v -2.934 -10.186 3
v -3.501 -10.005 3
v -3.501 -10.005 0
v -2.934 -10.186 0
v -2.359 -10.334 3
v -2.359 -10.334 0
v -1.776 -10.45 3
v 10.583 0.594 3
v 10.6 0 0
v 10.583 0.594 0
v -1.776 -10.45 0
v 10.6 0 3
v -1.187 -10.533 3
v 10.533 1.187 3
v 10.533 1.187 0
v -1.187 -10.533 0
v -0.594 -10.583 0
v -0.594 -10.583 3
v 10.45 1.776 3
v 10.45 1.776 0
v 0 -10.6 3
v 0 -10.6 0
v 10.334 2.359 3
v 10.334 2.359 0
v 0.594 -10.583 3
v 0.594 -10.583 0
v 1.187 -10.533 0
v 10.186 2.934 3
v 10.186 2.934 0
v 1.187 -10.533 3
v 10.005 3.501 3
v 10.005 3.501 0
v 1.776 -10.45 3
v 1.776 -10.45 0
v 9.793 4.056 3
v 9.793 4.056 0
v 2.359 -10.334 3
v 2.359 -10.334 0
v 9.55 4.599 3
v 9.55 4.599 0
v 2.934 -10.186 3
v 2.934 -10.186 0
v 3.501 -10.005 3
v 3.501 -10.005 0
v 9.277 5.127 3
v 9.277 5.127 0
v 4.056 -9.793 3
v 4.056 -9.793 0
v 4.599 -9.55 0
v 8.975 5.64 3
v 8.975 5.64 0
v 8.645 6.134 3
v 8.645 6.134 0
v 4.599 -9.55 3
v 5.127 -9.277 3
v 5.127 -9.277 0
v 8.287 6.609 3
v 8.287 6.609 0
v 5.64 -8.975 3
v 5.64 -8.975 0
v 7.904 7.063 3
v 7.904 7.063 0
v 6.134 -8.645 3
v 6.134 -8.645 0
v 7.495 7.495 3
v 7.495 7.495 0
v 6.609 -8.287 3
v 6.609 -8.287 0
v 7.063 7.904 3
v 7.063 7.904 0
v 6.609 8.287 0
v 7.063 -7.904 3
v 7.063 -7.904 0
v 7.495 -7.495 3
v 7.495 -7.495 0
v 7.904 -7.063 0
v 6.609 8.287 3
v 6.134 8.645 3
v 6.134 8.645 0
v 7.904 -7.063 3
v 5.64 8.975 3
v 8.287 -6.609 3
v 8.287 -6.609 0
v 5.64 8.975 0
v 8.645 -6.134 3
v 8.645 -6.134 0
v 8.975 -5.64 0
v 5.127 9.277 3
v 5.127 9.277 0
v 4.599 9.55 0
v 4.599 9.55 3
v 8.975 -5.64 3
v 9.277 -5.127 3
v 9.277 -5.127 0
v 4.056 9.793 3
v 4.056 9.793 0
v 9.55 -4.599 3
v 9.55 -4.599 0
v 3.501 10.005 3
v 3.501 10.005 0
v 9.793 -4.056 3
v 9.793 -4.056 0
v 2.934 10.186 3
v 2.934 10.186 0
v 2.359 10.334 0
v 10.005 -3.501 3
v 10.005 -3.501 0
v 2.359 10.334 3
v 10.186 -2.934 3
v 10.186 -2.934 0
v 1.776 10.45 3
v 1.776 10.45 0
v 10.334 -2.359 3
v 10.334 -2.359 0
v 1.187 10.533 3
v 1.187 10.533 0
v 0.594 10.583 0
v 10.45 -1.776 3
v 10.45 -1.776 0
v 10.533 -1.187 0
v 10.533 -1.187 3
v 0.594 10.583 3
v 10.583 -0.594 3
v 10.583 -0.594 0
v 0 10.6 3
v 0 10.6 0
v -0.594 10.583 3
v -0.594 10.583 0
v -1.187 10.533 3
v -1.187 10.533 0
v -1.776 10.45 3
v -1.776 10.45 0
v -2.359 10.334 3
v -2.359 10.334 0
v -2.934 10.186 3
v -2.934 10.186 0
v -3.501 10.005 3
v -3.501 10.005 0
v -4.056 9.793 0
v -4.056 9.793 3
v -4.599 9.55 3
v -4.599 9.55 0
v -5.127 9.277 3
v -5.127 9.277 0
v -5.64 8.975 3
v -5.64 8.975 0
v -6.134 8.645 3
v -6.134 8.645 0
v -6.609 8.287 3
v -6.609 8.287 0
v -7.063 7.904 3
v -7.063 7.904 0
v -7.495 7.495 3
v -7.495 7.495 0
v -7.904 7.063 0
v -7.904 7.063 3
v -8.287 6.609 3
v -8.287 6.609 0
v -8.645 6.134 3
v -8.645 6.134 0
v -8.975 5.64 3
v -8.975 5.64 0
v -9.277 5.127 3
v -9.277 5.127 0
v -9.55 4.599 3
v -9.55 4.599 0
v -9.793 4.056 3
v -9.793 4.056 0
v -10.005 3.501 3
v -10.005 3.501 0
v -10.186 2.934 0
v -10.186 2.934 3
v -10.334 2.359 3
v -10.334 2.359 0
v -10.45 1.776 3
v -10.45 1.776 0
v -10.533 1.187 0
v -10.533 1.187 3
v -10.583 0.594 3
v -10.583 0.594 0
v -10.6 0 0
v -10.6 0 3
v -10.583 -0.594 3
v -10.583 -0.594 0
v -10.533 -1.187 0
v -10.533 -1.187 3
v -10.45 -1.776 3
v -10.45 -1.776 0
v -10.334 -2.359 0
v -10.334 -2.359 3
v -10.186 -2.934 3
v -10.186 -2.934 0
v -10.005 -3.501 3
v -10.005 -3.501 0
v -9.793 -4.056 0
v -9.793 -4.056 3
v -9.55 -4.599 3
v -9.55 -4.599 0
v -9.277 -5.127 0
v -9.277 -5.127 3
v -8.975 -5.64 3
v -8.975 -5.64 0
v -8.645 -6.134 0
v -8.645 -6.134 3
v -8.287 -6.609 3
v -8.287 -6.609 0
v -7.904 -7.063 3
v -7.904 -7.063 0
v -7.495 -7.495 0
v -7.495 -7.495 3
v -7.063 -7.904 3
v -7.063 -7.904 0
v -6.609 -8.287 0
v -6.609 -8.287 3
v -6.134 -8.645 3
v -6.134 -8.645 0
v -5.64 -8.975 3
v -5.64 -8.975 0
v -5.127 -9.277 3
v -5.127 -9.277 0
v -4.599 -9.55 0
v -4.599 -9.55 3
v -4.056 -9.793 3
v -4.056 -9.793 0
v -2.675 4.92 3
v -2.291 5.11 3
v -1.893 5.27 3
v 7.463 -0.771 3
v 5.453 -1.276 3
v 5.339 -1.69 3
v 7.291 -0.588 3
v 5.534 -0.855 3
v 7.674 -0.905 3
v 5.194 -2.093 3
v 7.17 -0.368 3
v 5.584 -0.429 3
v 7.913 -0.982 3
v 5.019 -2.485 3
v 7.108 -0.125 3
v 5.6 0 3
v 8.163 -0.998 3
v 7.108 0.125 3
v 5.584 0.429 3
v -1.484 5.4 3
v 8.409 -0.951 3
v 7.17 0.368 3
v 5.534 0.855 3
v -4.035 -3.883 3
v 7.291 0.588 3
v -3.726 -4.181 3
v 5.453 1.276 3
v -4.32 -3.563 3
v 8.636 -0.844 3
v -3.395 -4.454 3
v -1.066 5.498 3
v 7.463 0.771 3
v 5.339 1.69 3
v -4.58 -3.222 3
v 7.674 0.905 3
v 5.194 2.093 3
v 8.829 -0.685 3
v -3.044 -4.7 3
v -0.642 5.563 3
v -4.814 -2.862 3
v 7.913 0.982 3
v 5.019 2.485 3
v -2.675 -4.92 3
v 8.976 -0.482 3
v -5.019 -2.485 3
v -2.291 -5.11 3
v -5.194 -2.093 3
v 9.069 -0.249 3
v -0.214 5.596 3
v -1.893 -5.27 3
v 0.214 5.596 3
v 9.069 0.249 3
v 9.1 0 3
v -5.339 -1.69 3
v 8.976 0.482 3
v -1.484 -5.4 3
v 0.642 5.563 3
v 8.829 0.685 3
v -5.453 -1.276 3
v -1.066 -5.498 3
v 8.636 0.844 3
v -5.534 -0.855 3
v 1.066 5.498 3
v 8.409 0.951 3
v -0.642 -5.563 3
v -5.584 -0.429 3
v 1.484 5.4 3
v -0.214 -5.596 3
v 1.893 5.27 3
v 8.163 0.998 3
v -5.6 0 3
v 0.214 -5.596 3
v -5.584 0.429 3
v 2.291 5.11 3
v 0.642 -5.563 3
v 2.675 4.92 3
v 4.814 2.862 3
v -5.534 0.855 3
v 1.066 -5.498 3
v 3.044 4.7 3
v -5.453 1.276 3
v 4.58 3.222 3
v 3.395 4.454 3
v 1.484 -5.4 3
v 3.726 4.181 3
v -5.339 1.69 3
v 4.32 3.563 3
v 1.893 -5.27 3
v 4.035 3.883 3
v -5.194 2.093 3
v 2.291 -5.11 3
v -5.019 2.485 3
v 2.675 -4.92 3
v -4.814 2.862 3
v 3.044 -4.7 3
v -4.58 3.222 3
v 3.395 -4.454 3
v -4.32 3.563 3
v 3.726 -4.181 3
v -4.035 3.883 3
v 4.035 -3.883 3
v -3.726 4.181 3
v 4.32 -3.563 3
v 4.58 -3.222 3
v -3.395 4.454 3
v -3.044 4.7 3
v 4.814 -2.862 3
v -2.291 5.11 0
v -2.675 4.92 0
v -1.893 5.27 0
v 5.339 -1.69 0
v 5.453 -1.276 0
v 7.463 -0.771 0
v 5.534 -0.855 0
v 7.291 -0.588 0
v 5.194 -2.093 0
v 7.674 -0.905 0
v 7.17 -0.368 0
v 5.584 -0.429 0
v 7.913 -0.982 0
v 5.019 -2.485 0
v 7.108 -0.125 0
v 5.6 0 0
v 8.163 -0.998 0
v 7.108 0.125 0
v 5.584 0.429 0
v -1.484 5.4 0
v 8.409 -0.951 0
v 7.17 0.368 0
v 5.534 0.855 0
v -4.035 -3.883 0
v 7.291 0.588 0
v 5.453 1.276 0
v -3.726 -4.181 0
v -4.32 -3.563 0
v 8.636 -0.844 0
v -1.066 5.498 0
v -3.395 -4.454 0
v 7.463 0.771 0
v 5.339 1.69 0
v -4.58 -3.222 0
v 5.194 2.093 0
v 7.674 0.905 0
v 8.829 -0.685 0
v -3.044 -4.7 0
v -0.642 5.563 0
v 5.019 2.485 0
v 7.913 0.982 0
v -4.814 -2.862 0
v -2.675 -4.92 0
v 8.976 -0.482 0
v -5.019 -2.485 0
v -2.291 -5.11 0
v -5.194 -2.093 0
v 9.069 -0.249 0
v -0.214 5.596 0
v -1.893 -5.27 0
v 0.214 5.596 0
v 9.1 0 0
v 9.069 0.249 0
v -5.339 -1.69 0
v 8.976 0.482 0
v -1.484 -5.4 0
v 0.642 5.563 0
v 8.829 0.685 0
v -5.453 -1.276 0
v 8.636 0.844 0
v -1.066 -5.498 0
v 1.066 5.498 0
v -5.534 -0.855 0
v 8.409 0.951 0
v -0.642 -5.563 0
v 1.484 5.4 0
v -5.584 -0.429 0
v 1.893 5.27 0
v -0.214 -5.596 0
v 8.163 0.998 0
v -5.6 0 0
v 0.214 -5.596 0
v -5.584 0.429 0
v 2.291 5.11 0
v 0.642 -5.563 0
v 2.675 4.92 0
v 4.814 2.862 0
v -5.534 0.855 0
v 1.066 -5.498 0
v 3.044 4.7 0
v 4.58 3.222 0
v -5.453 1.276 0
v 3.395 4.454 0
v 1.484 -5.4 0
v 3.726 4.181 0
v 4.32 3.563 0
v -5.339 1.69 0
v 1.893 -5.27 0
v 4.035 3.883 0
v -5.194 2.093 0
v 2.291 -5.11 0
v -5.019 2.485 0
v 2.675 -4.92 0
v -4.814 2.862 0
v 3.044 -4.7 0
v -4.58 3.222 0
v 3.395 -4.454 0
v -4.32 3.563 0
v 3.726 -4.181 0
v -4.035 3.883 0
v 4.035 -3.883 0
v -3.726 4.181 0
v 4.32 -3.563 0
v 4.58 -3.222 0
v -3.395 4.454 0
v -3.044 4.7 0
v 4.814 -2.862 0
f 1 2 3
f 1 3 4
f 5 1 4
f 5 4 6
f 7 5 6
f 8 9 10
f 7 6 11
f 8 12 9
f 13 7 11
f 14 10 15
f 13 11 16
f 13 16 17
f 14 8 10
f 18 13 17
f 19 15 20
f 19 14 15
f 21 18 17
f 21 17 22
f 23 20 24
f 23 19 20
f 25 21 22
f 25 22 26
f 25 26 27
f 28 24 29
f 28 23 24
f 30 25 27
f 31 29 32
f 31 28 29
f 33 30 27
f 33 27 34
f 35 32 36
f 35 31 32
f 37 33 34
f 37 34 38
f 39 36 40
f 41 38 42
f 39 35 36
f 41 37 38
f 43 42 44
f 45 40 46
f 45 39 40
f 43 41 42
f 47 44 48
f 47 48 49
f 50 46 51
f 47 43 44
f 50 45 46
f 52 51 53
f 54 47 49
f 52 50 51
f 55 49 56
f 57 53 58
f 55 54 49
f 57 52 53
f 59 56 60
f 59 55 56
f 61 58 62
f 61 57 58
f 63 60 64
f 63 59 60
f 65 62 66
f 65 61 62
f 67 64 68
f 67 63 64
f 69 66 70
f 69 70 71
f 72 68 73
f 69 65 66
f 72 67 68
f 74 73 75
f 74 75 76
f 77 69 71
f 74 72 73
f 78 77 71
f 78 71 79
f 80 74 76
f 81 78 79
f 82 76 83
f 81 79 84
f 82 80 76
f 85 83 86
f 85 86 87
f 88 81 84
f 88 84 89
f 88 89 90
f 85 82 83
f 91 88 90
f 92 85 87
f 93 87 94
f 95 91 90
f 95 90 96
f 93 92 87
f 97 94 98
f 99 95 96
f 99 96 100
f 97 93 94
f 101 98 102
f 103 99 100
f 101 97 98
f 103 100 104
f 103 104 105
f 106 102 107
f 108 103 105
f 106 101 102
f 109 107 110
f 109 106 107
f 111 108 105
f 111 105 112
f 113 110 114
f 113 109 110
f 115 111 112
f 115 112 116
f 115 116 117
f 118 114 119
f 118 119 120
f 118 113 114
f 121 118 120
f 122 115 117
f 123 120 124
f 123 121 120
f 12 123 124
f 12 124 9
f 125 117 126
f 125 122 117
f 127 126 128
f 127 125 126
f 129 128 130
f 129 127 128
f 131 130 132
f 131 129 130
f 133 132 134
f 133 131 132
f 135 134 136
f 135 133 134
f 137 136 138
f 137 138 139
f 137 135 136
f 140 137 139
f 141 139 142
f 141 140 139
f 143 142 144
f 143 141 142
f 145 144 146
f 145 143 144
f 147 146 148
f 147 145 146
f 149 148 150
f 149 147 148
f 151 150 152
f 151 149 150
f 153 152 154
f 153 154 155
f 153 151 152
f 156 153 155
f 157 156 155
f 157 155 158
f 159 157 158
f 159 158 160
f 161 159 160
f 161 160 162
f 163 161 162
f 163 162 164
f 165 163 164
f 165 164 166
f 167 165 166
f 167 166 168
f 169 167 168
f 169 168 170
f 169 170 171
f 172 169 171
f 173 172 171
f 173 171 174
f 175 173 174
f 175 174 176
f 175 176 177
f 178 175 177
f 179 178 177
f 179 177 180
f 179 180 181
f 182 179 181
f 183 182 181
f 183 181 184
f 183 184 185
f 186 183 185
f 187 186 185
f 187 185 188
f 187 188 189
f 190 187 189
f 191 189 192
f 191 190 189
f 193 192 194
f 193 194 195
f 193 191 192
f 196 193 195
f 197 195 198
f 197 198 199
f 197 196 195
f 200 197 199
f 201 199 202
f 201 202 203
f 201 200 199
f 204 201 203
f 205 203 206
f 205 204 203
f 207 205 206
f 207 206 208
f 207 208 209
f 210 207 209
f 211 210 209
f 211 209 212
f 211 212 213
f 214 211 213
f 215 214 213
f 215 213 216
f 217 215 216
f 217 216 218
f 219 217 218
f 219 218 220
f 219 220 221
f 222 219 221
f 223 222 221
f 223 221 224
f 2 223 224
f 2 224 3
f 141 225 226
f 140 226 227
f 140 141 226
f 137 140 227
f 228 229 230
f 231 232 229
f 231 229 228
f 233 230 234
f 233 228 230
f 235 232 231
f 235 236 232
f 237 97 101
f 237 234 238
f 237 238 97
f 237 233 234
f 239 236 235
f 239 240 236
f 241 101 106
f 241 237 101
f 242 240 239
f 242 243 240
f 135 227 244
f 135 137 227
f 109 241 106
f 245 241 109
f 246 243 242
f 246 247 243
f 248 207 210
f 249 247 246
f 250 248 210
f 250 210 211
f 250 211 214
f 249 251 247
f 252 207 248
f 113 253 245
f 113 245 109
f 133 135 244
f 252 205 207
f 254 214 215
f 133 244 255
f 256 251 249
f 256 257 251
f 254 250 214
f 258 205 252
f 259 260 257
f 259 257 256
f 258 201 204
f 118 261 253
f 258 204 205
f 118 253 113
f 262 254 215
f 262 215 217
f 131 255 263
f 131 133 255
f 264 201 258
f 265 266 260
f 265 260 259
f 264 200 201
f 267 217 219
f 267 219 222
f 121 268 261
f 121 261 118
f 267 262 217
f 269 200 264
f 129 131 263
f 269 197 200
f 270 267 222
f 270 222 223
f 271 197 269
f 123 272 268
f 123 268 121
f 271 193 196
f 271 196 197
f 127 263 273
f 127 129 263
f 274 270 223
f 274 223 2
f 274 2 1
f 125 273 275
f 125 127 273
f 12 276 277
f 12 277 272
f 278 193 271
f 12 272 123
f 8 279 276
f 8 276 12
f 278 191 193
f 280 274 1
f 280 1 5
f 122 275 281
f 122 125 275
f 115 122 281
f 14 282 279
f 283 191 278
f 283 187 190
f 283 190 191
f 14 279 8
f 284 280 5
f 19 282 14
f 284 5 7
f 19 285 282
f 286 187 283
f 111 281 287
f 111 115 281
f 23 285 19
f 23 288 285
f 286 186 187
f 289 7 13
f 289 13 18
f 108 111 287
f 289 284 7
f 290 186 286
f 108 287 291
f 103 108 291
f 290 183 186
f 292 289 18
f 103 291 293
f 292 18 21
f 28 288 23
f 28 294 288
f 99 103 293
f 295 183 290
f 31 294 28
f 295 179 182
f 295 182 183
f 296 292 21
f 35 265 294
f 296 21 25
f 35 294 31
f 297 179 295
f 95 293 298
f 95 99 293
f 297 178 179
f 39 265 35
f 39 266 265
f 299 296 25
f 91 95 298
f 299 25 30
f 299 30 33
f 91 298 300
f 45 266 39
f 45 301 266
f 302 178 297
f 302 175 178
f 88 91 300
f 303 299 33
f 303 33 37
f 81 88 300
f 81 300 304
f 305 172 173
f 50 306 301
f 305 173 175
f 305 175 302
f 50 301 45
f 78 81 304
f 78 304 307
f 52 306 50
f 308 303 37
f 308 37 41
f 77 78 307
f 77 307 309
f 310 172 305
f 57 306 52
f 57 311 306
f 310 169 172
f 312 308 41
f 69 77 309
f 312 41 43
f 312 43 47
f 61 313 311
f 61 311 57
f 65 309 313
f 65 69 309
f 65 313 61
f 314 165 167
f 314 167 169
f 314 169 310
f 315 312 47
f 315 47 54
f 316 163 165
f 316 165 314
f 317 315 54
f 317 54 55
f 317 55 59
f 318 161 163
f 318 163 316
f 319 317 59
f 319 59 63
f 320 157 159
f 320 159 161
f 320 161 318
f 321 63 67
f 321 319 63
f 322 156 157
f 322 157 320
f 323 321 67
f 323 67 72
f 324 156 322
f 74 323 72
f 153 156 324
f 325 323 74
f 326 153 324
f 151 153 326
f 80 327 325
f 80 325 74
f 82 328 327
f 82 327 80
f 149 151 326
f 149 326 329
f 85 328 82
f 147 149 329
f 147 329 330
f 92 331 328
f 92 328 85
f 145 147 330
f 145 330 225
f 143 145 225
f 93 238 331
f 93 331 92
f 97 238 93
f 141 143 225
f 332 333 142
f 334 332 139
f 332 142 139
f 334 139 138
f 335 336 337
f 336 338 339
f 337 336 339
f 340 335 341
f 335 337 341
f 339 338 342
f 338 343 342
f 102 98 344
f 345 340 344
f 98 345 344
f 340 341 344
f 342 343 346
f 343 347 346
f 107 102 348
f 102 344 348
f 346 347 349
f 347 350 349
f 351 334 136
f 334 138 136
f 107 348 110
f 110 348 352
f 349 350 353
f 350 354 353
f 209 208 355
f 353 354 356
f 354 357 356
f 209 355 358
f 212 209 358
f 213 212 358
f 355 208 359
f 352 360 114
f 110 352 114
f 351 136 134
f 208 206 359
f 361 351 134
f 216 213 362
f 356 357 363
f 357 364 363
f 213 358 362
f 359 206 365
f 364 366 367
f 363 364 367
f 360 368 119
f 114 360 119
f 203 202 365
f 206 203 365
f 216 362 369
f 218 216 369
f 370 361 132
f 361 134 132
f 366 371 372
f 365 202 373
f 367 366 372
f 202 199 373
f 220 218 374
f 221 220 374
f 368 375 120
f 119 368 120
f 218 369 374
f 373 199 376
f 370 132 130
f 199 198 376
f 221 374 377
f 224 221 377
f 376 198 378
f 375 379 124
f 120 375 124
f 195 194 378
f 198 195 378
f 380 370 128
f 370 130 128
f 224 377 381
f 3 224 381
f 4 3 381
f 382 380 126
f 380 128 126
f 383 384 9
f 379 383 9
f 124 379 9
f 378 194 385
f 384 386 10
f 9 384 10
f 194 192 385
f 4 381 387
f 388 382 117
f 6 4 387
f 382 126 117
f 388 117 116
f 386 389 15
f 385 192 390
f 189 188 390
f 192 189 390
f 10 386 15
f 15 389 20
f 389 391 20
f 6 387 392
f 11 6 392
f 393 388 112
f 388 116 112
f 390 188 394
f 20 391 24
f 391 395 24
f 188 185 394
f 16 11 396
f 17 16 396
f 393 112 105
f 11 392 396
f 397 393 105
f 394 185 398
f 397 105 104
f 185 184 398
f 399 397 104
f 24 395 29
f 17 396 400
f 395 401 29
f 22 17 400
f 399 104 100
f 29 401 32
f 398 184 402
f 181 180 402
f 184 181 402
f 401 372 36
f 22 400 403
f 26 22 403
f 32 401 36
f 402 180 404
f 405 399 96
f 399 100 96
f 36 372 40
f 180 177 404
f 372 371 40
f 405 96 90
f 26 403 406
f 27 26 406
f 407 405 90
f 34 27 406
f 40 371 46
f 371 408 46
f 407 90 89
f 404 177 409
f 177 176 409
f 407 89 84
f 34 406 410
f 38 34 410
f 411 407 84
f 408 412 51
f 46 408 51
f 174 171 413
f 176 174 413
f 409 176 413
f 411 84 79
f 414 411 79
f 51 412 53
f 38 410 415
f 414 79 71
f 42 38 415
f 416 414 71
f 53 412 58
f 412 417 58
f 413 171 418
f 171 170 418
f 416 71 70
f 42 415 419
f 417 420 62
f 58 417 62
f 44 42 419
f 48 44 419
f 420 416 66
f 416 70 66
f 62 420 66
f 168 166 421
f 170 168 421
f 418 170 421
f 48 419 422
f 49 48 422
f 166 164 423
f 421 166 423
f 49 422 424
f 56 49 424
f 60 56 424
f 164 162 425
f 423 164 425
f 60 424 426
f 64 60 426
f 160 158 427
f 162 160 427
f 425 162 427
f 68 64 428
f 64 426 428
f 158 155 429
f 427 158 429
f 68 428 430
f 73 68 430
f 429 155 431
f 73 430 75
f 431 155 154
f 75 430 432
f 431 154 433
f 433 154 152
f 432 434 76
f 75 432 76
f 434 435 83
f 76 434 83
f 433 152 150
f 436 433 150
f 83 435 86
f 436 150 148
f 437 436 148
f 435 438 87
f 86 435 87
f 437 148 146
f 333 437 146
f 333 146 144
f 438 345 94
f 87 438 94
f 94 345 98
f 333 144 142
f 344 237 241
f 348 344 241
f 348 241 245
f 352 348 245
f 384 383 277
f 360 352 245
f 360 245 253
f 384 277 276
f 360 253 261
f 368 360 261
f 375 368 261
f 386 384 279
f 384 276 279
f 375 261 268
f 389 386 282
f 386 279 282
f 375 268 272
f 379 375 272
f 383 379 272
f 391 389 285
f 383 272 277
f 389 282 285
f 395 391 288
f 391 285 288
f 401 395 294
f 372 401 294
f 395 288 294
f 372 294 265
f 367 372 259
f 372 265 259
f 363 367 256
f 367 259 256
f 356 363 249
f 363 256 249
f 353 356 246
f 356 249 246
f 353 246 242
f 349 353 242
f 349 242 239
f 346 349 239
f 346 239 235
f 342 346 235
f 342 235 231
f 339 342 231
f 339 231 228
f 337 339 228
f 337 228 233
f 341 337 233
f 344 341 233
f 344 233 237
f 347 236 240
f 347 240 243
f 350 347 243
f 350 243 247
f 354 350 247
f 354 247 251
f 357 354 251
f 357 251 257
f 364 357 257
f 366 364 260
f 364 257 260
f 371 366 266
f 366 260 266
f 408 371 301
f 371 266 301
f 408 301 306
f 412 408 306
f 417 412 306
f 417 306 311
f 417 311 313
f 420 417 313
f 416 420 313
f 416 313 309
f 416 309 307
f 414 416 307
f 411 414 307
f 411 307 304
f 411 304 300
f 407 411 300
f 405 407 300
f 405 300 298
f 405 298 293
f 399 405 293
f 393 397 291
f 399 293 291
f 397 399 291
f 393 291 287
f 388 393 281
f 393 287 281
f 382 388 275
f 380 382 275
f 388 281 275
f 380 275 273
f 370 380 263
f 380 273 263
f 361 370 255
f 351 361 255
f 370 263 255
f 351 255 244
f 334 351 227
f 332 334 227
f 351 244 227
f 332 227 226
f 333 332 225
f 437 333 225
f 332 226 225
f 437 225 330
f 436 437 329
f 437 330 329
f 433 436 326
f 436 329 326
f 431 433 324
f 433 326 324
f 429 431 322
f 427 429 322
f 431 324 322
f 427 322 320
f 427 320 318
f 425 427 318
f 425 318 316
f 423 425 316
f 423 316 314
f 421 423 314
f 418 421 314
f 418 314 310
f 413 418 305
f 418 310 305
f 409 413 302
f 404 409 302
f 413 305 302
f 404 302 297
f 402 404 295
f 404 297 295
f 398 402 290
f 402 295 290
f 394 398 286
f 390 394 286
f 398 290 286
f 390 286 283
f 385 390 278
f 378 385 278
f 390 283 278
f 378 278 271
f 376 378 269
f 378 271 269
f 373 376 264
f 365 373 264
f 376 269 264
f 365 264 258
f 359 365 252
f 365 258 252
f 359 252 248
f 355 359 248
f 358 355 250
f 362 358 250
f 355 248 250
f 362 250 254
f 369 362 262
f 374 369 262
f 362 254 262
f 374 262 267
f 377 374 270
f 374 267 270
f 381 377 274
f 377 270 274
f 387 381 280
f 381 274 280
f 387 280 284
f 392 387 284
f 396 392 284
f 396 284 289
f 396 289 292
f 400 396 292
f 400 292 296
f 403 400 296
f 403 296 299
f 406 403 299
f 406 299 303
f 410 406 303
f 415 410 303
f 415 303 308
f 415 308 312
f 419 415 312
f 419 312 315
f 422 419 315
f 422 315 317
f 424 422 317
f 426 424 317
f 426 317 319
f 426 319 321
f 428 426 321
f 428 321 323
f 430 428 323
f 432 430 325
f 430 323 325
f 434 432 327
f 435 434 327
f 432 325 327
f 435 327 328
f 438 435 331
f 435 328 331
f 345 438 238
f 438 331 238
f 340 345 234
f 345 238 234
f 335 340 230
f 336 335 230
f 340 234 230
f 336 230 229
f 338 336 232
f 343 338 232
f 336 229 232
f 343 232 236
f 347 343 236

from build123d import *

# Parameters (mm, degrees)
CYLINDER_R      = 10.6
CYLINDER_DEPTH  = 3
SKETCH_R        = 5.6
POCKET_DEPTH    = 3
SKETCH001_R     = 1
POCKET001_DEPTH = 3


with BuildPart() as part:
    # Cylinder → Cylinder (new body)
    with BuildSketch(Plane.XY):
        Circle(CYLINDER_R)
    extrude(amount=CYLINDER_DEPTH)

    # Sketch → Pocket (cut)
    with BuildSketch(Plane.XY.offset(3)):
        Circle(SKETCH_R)
    extrude(amount=-POCKET_DEPTH, mode=Mode.SUBTRACT)

    # Sketch001 → Pocket001 (cut)
    with BuildSketch(Plane.XY.offset(3)):
        with Locations((8.1, 0)):
            Circle(SKETCH001_R)
    extrude(amount=-POCKET001_DEPTH, mode=Mode.SUBTRACT)


solid = part.part
